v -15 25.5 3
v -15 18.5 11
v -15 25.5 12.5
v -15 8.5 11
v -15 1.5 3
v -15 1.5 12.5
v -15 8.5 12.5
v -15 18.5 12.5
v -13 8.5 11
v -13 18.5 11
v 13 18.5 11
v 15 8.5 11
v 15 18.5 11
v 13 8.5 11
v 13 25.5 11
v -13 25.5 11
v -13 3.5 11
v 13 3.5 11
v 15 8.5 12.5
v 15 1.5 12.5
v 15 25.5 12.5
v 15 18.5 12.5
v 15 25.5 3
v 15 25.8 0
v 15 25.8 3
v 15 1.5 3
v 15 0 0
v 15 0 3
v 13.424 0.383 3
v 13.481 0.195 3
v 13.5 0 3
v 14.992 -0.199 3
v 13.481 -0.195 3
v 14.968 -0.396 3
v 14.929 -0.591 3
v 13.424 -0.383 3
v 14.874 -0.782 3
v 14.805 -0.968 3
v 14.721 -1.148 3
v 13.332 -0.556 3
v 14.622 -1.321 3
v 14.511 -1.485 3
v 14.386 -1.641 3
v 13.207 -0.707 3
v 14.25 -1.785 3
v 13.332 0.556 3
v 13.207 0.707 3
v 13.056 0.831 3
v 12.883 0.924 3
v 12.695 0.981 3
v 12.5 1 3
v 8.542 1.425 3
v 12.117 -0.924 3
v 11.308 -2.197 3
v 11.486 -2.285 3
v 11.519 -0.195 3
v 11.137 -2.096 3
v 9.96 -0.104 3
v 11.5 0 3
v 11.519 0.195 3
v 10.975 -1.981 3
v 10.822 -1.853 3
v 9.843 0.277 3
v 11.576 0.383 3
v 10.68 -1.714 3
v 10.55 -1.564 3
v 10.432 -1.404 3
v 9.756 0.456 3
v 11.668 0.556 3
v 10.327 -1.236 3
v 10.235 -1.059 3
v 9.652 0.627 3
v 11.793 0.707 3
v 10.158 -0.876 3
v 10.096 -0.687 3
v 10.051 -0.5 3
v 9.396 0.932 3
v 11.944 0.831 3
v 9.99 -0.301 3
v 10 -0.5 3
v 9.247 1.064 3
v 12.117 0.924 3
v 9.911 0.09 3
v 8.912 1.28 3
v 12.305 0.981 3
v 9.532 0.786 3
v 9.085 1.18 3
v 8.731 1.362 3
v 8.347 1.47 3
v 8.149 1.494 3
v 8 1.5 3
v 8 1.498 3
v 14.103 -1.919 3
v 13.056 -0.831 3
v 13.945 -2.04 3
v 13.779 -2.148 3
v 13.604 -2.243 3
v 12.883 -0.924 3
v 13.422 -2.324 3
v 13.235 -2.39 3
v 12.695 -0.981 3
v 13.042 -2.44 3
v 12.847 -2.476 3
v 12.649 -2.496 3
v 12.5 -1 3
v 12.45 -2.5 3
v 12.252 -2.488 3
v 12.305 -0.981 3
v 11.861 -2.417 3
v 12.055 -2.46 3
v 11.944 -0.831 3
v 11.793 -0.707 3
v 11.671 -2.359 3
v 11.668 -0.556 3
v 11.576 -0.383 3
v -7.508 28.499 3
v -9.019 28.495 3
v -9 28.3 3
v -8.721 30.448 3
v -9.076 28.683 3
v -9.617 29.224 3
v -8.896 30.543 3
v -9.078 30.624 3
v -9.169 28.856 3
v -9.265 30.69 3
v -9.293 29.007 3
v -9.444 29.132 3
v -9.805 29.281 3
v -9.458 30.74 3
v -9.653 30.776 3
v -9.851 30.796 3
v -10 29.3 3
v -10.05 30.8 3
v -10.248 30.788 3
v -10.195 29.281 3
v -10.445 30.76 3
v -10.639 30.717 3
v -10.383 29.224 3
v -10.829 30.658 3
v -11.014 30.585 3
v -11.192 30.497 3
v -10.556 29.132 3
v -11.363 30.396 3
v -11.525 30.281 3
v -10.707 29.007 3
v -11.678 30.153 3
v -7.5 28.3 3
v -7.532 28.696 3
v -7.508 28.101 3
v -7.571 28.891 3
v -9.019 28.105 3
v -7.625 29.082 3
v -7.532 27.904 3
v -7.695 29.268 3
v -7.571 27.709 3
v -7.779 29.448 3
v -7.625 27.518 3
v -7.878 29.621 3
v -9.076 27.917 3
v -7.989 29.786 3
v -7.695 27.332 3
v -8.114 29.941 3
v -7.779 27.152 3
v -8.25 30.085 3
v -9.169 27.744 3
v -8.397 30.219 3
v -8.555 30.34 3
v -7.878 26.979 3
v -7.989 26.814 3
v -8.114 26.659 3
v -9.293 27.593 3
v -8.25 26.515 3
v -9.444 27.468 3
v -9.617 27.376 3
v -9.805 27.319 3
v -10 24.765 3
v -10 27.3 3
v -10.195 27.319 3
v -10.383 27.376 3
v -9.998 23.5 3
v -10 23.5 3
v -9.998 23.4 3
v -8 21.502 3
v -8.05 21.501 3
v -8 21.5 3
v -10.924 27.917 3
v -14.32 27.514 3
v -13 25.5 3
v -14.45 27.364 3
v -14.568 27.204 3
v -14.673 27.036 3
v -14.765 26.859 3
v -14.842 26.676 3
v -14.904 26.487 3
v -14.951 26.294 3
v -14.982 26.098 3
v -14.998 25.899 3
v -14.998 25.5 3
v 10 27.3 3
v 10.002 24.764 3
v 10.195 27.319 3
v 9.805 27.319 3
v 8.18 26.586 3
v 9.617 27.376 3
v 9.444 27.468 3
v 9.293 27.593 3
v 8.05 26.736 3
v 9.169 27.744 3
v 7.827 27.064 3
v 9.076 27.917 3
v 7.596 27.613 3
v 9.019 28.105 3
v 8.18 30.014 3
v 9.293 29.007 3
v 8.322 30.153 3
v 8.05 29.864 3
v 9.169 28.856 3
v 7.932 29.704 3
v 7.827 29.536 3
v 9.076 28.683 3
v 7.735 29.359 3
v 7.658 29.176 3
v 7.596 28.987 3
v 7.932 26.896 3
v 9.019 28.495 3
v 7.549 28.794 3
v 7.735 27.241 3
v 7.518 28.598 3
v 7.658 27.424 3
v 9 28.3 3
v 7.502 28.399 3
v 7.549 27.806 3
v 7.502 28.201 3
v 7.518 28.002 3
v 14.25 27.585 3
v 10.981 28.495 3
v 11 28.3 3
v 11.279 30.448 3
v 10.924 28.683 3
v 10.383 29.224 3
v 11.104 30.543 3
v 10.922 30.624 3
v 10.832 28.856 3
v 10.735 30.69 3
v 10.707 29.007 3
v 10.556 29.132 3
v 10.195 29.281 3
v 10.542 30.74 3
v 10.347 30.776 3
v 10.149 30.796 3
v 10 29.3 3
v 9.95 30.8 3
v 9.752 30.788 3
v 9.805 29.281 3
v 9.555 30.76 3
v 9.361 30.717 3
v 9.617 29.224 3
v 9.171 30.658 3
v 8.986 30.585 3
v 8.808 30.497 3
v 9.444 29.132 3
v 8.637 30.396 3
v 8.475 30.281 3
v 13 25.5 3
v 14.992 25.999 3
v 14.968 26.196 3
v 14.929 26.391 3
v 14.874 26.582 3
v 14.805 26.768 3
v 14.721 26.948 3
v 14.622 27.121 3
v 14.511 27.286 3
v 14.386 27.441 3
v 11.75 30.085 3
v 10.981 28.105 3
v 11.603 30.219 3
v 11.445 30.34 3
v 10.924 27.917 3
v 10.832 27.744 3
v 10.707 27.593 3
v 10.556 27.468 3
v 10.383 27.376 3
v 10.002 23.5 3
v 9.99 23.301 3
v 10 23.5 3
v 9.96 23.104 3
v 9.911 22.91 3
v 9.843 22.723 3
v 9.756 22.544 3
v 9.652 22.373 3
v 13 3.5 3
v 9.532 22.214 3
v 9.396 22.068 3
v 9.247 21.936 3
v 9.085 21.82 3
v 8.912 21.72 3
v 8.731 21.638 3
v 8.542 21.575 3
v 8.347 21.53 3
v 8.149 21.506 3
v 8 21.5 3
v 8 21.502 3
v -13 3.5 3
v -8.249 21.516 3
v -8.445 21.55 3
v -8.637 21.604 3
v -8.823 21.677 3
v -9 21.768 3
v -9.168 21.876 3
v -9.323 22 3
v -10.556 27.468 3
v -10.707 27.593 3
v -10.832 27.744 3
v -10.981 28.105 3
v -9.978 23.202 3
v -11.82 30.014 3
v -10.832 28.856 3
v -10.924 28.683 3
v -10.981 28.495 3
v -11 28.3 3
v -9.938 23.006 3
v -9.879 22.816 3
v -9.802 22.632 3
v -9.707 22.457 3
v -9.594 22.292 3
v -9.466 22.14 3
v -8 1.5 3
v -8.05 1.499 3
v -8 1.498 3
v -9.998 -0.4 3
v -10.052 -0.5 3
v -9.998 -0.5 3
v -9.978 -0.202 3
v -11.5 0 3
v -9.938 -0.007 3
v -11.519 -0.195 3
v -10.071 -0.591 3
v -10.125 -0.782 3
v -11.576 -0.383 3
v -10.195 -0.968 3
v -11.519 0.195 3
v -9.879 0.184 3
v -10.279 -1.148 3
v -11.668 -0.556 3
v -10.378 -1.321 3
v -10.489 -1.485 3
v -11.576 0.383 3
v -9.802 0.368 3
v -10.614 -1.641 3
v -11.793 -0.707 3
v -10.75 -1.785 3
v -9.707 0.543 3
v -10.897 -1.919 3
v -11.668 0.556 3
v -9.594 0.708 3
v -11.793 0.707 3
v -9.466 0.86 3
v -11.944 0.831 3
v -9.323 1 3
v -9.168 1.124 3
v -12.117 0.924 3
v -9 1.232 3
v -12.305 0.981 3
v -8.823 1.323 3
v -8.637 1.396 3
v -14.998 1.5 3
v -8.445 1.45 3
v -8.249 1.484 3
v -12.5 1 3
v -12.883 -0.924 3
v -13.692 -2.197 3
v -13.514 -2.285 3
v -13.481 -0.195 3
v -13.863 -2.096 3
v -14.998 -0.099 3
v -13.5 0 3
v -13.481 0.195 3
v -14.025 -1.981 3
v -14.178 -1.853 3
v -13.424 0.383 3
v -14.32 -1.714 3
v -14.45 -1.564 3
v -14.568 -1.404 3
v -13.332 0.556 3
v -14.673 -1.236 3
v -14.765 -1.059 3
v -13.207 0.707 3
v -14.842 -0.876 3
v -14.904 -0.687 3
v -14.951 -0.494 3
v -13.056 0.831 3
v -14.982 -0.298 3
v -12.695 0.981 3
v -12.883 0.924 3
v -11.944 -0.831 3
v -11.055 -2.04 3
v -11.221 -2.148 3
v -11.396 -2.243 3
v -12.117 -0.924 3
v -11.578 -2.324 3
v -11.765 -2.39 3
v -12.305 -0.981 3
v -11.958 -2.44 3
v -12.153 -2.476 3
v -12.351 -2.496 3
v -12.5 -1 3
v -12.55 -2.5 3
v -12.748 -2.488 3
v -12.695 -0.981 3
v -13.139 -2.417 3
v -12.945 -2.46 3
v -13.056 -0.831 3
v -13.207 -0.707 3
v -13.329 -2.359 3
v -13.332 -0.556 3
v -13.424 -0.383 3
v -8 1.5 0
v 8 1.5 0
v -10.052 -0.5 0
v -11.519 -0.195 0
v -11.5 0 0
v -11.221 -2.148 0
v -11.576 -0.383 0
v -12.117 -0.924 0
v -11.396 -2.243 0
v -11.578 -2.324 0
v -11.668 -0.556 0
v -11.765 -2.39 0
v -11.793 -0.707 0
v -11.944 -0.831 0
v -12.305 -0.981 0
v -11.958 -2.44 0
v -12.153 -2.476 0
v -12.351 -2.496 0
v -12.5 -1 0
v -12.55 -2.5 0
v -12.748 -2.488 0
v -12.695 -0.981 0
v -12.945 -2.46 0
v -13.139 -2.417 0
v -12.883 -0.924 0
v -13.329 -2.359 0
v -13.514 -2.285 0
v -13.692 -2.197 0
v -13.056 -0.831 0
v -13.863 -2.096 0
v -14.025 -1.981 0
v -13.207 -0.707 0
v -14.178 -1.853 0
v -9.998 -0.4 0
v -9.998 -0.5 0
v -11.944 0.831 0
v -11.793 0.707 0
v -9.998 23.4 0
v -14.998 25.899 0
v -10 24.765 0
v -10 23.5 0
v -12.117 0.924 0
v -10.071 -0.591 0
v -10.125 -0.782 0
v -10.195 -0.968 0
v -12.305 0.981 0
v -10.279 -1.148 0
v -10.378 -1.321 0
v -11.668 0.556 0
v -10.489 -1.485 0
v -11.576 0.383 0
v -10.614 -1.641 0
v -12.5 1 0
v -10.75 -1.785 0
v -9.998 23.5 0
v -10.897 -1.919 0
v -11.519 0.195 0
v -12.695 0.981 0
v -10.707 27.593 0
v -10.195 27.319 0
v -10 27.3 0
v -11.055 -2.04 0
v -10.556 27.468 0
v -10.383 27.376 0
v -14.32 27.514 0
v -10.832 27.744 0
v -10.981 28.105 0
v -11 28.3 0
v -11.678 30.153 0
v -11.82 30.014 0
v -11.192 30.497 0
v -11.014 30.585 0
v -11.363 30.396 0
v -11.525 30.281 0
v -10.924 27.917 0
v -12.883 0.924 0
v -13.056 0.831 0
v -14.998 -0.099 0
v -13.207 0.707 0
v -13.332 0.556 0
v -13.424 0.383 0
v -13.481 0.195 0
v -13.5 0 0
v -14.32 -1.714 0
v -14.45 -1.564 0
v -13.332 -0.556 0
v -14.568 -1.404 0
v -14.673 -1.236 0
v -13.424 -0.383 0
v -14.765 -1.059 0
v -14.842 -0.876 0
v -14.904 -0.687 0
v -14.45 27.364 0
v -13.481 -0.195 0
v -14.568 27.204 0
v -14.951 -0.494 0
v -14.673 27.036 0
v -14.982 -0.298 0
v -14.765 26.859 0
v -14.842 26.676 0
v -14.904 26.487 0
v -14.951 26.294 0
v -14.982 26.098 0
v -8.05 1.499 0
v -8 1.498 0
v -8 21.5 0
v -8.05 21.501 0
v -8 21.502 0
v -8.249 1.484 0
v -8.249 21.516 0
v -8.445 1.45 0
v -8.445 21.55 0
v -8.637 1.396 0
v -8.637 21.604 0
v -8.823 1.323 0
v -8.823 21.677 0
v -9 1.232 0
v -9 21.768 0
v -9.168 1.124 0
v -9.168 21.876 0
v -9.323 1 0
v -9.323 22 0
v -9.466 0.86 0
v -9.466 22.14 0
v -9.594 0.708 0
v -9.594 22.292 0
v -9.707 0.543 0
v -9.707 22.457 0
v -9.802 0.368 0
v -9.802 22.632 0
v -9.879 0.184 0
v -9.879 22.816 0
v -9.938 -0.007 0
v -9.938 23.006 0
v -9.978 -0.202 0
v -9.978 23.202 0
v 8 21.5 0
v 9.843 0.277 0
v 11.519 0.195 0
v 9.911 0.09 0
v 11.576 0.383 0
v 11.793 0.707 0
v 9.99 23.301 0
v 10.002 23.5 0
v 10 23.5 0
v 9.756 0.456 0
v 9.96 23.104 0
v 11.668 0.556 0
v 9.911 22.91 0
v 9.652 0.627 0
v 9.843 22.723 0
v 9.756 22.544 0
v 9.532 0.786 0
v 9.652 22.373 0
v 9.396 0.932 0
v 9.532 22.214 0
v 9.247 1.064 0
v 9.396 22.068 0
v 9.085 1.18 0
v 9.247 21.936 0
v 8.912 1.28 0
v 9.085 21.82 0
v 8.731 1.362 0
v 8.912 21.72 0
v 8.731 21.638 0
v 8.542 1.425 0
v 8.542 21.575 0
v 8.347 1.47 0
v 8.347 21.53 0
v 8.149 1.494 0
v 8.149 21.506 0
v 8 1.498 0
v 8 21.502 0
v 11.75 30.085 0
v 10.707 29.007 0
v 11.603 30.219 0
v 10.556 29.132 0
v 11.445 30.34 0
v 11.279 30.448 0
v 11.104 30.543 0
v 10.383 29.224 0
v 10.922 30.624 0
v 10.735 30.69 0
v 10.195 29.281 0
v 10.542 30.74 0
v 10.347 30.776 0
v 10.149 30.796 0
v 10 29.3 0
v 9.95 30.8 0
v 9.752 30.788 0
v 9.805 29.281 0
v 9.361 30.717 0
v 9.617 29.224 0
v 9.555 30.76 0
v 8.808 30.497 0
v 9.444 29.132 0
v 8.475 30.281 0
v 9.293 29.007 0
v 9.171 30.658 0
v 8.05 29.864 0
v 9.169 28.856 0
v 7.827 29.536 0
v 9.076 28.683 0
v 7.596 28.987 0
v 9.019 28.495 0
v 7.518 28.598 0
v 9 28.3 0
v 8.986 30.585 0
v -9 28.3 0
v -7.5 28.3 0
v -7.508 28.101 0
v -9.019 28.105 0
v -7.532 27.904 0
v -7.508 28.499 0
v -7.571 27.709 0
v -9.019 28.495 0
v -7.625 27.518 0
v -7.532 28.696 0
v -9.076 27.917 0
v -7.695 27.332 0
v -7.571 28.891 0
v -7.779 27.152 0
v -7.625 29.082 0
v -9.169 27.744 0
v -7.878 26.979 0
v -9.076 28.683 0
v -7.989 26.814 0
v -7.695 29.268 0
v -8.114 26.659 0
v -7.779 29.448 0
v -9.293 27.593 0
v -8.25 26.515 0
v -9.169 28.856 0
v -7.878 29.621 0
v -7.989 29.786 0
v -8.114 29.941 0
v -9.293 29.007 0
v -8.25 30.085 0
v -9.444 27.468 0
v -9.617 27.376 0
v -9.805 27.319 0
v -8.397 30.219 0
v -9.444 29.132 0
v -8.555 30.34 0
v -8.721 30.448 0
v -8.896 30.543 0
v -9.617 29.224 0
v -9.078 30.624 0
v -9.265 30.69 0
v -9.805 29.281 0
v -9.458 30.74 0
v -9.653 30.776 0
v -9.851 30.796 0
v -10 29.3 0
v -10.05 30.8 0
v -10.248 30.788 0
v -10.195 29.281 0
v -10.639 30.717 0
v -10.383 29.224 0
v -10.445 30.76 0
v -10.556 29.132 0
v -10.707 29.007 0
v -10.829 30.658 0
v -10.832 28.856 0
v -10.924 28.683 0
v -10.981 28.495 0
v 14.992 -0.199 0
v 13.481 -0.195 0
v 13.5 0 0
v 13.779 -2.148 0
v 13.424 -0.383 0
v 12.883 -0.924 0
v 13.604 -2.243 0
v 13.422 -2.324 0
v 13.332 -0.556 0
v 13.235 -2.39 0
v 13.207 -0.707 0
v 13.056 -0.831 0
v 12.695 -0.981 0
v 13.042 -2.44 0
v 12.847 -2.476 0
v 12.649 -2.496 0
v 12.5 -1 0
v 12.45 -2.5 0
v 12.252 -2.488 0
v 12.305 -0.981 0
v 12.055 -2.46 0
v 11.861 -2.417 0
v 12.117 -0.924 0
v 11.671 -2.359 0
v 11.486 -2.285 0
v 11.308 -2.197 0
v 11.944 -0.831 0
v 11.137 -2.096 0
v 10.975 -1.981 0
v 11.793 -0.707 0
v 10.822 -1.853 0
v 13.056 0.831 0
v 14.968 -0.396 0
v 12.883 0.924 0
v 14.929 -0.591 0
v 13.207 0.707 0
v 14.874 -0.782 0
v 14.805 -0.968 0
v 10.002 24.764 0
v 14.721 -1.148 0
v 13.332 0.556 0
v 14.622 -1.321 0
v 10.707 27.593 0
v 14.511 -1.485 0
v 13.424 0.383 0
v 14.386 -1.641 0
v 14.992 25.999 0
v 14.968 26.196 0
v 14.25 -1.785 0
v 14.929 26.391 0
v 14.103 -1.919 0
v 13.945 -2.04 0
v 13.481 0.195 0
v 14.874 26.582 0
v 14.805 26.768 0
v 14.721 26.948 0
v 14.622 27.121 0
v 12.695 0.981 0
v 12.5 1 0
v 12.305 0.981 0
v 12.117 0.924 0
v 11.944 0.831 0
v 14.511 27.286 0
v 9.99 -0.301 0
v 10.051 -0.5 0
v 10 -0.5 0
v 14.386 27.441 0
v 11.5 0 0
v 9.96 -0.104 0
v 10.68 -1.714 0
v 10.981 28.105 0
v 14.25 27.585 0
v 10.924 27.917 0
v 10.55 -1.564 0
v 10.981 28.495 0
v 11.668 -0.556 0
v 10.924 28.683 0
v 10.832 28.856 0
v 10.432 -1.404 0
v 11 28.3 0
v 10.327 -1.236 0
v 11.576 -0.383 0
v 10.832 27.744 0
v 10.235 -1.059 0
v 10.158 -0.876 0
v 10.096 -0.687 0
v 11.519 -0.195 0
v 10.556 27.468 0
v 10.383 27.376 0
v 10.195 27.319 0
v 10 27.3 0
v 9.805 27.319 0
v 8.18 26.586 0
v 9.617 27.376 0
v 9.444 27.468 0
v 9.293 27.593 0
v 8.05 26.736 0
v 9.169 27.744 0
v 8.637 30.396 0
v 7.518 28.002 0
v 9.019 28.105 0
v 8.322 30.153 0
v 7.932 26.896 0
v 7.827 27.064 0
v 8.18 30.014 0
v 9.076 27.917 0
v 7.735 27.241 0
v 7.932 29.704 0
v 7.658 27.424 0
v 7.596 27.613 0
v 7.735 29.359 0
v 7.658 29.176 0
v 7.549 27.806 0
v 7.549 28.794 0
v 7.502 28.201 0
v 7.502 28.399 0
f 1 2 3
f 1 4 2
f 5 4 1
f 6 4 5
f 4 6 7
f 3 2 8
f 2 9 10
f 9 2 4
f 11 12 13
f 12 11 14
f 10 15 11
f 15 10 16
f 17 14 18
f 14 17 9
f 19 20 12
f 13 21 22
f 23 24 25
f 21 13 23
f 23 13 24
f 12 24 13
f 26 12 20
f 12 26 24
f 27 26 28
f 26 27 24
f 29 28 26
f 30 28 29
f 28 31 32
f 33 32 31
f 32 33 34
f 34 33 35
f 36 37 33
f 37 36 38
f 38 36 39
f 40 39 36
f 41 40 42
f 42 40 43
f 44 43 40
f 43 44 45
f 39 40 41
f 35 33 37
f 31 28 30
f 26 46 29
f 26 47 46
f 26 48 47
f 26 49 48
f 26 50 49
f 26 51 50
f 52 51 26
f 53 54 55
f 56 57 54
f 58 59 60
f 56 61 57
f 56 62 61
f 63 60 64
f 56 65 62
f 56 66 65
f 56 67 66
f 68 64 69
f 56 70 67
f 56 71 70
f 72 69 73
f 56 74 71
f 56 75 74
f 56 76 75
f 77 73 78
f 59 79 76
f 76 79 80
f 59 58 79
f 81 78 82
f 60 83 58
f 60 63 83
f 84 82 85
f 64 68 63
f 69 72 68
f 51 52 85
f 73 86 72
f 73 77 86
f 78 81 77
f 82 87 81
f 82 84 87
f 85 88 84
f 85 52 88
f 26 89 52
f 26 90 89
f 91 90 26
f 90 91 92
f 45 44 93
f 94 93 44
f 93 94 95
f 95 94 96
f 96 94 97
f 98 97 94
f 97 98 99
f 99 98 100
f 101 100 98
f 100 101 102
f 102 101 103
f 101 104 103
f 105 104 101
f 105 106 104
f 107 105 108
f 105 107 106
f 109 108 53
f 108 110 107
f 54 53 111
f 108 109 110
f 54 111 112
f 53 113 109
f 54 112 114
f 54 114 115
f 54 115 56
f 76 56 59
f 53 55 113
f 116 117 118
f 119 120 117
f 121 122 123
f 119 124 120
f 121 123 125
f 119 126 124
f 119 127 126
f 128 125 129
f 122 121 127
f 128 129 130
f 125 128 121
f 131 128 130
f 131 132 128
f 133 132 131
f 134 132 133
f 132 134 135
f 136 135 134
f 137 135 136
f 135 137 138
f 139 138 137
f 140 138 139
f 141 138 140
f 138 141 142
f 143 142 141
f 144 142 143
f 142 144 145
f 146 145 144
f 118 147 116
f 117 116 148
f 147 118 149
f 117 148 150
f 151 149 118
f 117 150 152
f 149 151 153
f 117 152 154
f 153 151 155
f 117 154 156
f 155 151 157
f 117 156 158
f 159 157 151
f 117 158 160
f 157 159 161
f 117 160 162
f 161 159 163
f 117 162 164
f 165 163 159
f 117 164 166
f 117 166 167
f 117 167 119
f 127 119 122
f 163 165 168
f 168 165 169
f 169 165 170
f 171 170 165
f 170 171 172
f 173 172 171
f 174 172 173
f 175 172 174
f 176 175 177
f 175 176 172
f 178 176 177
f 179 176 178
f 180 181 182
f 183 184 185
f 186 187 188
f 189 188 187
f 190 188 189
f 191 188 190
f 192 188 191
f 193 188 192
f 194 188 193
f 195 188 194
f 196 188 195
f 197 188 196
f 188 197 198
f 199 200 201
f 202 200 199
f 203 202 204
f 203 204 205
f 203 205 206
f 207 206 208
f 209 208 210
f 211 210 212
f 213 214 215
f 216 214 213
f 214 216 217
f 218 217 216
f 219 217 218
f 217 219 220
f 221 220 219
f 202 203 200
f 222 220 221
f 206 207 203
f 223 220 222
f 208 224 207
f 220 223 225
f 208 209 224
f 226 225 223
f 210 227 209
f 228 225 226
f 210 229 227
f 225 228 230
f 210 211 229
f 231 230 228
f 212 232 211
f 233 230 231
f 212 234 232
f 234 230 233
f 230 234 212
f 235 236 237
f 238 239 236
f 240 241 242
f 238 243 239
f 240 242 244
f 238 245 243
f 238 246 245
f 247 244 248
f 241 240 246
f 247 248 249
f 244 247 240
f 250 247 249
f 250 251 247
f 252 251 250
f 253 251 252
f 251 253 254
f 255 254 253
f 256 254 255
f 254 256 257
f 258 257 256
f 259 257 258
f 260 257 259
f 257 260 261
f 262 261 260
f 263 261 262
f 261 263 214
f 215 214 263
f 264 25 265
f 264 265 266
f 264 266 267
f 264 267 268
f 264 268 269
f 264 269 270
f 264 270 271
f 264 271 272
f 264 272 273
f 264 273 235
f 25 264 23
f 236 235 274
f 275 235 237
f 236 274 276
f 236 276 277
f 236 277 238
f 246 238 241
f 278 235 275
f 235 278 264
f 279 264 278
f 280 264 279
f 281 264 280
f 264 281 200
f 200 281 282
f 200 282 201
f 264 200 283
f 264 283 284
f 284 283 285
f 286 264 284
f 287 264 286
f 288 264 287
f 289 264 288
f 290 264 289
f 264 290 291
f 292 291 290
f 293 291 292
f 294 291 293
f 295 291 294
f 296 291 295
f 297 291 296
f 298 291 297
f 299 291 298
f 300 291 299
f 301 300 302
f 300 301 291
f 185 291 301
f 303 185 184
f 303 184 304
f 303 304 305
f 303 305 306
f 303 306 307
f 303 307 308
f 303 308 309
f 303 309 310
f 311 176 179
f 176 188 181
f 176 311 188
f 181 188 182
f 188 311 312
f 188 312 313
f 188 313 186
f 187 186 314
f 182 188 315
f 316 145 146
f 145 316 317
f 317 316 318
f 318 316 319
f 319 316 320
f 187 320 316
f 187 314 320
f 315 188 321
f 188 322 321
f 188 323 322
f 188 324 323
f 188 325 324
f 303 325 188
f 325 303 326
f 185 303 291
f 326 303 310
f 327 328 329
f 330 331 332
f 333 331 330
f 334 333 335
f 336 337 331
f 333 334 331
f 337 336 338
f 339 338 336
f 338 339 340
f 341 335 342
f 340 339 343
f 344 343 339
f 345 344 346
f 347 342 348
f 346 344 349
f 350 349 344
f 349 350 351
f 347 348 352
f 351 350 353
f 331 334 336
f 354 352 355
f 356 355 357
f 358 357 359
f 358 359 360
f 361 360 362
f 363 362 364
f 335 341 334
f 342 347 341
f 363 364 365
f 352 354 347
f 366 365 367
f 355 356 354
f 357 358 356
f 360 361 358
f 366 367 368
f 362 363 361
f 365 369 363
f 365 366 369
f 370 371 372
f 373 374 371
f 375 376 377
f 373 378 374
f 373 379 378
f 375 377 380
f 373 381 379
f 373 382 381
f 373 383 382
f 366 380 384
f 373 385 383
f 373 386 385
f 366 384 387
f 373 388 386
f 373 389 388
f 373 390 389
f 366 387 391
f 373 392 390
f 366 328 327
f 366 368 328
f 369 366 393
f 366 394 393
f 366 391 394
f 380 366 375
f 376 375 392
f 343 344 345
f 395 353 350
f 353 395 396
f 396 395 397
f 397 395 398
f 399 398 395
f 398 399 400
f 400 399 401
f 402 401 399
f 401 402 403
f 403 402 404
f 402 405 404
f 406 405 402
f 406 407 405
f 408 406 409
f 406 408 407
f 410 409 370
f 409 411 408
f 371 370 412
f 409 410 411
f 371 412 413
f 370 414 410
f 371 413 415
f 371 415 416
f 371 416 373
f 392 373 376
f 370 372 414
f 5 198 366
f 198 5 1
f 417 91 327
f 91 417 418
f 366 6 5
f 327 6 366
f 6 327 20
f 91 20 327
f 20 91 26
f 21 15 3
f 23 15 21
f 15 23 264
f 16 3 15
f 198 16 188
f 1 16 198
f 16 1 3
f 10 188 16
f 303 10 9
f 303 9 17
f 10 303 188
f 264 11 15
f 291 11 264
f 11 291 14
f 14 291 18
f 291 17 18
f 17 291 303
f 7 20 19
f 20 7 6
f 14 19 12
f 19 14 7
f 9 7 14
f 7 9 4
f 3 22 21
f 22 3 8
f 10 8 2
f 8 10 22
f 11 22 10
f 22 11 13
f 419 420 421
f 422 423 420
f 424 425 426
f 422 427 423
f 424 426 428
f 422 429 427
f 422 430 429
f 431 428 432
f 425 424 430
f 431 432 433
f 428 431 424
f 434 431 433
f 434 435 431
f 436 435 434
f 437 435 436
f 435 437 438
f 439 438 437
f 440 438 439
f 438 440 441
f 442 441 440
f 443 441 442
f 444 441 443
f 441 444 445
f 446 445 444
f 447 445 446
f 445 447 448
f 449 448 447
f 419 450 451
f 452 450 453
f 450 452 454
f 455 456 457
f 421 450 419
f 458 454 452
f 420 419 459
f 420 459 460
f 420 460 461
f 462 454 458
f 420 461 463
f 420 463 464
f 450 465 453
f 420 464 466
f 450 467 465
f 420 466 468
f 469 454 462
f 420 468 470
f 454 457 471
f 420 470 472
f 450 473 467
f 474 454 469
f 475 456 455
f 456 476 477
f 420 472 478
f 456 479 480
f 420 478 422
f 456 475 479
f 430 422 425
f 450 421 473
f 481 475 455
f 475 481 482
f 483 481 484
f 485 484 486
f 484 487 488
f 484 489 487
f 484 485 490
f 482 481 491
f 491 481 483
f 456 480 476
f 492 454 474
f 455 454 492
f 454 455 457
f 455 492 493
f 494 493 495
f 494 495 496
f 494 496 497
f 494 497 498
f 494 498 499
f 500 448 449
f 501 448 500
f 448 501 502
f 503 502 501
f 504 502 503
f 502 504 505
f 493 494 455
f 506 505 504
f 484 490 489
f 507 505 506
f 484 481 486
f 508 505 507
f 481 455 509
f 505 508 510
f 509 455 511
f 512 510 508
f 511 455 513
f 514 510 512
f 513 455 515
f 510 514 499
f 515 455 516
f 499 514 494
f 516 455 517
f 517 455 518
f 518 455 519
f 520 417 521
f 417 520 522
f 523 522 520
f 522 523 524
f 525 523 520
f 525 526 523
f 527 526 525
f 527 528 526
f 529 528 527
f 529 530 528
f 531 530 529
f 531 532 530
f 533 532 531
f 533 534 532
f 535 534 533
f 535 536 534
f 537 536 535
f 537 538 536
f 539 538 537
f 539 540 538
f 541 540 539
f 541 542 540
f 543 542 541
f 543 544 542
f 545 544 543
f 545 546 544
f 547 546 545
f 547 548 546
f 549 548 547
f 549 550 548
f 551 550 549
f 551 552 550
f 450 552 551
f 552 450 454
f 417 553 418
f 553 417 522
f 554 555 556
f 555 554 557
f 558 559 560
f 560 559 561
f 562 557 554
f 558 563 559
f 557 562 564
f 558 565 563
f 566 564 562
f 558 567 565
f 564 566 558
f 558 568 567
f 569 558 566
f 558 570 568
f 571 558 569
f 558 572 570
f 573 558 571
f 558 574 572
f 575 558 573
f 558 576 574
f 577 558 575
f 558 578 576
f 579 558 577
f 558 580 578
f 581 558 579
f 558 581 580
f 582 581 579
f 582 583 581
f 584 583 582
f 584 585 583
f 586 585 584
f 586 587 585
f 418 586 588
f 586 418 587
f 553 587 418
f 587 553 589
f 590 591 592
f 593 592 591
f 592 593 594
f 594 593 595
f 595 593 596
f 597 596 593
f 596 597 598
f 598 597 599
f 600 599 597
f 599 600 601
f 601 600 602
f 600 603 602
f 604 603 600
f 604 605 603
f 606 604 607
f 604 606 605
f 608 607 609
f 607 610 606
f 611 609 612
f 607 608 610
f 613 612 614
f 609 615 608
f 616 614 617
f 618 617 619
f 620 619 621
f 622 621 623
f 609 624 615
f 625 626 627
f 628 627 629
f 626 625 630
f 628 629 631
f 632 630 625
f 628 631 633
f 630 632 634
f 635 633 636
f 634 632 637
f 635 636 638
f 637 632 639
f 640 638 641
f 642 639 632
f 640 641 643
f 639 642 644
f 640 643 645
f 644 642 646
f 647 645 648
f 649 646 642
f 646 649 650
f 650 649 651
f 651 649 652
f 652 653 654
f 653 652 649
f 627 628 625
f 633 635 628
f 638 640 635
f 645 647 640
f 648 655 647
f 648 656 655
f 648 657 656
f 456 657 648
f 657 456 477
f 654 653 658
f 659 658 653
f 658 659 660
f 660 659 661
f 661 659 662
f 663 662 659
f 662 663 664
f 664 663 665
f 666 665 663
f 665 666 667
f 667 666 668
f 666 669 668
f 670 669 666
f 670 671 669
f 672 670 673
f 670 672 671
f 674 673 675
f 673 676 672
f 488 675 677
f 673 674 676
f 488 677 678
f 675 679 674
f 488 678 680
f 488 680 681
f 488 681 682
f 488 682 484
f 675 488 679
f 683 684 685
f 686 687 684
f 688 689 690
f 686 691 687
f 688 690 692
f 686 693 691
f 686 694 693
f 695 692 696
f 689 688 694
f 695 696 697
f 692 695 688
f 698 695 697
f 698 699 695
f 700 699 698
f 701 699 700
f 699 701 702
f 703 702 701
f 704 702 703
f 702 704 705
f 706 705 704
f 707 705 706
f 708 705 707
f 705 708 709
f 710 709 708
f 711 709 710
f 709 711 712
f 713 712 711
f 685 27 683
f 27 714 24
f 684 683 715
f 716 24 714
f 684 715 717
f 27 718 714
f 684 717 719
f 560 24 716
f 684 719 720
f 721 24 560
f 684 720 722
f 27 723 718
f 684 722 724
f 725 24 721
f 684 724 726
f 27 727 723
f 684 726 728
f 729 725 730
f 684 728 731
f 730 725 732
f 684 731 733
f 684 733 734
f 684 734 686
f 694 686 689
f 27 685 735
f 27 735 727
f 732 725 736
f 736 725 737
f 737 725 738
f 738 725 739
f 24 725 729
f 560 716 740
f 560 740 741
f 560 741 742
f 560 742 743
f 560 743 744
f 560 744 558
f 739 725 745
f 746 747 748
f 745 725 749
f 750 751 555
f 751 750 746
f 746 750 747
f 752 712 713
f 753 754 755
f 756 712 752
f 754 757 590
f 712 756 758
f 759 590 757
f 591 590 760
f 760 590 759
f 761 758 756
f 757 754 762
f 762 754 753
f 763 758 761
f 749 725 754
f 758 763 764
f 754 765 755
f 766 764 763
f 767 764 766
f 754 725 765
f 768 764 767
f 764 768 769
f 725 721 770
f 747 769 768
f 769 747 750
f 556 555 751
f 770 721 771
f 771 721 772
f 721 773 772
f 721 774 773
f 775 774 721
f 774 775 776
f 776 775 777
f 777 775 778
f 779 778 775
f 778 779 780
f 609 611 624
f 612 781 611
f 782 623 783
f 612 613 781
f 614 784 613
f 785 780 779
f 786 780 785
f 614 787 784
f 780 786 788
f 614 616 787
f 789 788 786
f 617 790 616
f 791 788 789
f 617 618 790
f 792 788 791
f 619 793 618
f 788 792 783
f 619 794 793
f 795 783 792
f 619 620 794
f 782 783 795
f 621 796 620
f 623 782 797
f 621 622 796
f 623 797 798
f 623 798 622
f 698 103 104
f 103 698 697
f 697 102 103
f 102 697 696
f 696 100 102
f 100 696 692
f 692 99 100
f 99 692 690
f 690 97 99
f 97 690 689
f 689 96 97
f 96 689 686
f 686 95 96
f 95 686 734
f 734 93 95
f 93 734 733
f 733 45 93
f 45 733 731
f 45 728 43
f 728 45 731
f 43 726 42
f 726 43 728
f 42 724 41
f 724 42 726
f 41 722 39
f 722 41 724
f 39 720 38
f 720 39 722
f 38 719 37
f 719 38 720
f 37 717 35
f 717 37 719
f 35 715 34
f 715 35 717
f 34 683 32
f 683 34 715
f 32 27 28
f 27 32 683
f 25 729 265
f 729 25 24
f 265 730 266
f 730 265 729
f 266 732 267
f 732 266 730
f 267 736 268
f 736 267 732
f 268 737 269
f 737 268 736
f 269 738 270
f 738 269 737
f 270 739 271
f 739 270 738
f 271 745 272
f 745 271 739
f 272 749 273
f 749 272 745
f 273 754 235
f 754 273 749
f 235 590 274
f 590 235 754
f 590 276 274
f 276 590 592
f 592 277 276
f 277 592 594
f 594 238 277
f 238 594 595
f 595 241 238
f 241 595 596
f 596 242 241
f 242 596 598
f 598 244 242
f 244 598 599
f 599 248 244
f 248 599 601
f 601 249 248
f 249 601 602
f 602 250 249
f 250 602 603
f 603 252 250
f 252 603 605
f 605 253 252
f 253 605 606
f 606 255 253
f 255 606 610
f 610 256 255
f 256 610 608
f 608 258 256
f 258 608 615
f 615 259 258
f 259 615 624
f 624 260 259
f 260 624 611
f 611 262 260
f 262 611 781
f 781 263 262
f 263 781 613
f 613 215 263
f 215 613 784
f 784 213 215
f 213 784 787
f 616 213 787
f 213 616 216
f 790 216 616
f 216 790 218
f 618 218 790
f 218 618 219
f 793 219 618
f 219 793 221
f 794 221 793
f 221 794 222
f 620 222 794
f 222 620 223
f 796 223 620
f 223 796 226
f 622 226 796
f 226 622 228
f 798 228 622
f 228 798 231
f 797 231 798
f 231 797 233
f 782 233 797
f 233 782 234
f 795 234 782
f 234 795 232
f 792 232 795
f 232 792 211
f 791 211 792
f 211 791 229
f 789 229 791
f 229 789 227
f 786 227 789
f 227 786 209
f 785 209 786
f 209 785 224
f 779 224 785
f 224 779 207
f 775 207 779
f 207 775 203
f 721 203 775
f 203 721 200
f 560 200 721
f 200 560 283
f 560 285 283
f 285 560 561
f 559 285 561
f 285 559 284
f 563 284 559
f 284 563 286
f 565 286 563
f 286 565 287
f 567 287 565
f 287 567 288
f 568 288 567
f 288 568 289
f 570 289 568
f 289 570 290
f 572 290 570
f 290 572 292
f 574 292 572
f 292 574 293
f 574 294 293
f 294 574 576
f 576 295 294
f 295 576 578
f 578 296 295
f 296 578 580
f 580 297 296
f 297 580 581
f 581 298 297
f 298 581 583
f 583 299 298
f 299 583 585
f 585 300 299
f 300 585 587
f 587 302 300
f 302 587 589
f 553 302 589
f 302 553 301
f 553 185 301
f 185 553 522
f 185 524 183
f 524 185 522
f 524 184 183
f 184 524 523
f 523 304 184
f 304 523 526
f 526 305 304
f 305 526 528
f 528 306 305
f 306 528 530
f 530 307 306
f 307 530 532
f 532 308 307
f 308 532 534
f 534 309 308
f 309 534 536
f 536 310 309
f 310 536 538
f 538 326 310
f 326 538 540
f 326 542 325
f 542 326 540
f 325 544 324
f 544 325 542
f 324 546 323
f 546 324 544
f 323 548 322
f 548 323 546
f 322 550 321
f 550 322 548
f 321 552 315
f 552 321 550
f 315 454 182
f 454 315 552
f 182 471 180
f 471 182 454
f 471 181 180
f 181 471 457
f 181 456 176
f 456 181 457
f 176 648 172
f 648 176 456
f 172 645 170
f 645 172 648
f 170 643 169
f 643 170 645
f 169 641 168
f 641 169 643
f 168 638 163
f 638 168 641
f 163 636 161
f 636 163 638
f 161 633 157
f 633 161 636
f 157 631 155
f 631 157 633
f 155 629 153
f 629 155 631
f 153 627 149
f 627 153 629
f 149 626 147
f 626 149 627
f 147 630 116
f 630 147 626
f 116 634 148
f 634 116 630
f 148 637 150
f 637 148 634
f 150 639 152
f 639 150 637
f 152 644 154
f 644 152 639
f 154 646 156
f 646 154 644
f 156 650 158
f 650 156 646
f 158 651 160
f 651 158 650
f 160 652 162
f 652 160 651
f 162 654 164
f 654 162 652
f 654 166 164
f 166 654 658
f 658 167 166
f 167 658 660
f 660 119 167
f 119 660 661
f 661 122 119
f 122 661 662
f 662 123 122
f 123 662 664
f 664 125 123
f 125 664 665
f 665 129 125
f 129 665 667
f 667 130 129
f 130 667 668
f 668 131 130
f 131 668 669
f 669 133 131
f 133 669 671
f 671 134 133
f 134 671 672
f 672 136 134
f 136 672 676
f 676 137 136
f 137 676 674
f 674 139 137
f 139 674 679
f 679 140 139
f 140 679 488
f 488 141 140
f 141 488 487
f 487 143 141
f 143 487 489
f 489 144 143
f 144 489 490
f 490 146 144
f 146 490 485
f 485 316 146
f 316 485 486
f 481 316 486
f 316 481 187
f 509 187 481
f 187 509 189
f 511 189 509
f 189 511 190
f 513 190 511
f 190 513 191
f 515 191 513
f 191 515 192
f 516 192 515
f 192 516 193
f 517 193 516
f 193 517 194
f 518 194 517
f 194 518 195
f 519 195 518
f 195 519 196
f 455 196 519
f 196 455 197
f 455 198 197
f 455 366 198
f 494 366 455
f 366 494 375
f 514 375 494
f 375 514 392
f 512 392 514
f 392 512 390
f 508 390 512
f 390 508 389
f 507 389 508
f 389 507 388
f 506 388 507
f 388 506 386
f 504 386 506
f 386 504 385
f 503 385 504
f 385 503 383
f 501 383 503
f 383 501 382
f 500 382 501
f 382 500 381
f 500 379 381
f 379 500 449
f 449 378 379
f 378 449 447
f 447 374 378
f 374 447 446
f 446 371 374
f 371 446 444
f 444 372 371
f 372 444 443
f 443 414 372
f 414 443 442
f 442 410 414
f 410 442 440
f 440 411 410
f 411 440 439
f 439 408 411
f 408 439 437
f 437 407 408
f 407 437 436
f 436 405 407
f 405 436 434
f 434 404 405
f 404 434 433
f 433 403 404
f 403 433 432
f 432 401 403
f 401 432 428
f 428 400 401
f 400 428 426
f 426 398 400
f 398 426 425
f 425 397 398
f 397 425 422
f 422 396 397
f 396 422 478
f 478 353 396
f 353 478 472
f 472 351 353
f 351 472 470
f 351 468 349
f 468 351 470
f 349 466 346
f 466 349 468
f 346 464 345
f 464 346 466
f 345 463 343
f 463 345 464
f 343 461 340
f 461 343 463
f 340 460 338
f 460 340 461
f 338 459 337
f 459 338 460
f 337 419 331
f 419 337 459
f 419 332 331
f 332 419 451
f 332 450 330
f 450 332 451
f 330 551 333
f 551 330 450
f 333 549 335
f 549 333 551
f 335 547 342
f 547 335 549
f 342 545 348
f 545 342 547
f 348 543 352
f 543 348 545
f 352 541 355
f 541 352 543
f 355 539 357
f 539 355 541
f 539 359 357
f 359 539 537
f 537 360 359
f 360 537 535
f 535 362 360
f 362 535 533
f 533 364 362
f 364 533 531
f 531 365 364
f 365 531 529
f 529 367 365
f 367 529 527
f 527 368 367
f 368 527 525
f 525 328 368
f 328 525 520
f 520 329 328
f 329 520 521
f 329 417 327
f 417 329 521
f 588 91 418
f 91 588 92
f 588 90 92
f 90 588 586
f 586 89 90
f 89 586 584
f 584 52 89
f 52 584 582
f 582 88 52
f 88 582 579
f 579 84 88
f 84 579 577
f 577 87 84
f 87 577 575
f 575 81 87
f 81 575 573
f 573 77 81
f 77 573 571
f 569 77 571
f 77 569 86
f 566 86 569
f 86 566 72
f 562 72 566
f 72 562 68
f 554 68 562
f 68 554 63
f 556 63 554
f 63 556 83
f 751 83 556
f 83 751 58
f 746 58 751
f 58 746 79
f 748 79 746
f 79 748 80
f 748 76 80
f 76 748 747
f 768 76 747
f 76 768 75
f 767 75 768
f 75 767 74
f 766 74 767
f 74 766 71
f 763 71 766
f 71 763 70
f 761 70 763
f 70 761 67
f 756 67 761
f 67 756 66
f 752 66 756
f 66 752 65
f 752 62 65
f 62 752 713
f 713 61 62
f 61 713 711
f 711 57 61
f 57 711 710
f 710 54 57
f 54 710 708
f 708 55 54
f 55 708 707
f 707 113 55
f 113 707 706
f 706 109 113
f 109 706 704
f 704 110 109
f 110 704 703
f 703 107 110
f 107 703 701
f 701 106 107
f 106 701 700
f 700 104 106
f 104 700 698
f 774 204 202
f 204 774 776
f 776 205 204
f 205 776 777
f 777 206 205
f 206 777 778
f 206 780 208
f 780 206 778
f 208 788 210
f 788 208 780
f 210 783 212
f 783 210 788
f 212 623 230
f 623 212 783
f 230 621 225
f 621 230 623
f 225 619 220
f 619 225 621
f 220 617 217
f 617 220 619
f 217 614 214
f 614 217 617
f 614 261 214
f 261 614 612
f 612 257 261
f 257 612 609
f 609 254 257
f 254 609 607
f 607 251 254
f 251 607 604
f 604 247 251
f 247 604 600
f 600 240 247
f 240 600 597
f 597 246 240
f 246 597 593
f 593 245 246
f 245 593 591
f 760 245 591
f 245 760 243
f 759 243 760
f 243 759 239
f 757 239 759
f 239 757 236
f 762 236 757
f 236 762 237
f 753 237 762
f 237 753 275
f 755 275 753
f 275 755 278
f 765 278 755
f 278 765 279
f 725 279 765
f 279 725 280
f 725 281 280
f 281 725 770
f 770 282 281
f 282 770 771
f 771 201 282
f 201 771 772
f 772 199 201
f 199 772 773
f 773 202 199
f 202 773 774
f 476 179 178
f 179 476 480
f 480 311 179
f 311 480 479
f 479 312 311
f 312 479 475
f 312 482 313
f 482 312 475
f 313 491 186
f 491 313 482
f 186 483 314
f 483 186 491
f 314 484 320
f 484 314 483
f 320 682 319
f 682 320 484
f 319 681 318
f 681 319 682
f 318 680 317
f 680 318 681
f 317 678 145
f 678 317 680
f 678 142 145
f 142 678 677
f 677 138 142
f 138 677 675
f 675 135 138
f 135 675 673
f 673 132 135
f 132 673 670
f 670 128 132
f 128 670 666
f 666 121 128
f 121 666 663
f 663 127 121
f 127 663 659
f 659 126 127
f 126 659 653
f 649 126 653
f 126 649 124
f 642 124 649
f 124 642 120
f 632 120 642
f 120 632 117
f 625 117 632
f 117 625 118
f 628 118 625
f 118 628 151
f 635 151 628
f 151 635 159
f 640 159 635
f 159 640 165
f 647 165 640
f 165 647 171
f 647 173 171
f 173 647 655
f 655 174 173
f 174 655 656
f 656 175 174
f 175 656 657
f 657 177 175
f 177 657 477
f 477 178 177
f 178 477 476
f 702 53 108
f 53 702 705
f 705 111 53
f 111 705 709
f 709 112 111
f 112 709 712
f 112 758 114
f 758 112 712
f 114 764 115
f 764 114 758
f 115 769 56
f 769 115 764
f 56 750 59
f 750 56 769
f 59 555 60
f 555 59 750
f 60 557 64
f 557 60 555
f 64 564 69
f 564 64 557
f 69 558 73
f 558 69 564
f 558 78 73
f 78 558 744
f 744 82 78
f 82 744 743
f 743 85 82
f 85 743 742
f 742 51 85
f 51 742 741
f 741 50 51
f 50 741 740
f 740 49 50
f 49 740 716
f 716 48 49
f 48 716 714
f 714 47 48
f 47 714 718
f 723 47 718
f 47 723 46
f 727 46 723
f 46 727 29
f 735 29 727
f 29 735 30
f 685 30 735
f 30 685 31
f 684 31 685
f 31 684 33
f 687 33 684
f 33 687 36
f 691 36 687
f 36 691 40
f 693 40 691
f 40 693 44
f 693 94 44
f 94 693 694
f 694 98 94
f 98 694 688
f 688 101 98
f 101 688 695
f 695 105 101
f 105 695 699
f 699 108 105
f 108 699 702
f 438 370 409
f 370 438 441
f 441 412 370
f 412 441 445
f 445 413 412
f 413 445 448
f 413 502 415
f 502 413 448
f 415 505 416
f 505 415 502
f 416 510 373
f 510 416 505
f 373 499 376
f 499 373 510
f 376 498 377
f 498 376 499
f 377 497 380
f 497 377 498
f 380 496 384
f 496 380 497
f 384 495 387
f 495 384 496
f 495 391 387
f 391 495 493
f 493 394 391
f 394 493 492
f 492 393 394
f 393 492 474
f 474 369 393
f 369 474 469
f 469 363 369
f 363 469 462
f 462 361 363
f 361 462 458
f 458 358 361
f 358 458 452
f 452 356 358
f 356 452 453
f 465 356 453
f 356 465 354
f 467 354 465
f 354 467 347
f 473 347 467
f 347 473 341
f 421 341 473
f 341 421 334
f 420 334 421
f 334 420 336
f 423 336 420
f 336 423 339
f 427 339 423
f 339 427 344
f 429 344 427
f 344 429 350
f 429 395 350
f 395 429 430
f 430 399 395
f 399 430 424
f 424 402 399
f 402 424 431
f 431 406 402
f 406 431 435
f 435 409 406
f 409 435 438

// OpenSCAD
$fs = $preview ? 0.5 : 0.2;
$fa = $preview ? 10 : 2;

// base plate
h0 = 3;
w0 = 5;
d1 = 25;
d2 = 20;
l0 = 28.3;
s12 = (d1 - d2) / 2;
dh = 2;

br = 2; // bevel radius (on inner corners)

// support bar
gl = 20;
gs = 1.5;

// GPS mount
gmw = 26;
gmh = 8;
gml = 22; // real lenght = 25

bw = 2; // side border width

gcl = 5; // top cover length
gcw = 1.5; // top plate width

eps = 0.5;

translate([-gmw / 2 - bw, gs, h0]) {
    difference() {
        cube([gmw + 2 * bw, gml + bw, gmh]);        
        translate([bw, bw, -eps]) cube([gmw, gml + eps, gmh + 2 * eps]);
    }
    translate([0, 0, gmh])
        cube([gmw + 2 * bw, gcl + bw, gcw]);
    translate([0, gml - gcl, gmh])
        cube([gmw + 2 * bw, gcl + bw, gcw]);
}


linear_extrude(h0) {
    difference() {
        union() {
            hull() {
                translate([d1 / 2, 0]) circle(d = w0);
                translate([d2 / 2 + s12, l0 - s12]) circle(d = w0);
            }
            hull() {
                translate([d2 / 2 + s12, l0 - s12]) circle(d = w0);
                translate([d2 / 2, l0]) circle(d = w0);
            }

            hull() {
                translate([-d1 / 2, 0]) circle(d = w0);
                translate([-d2 / 2 - s12, l0 - s12]) circle(d = w0);
            }
            hull() {
                translate([-d2 / 2 - s12, l0 - s12]) circle(d = w0);
                translate([-d2 / 2, l0]) circle(d = w0);
            }
            translate([-d1 / 2, gs])
                square([d1, gl]);
            translate([-d1 / 2 + w0 / 2, gs - br])
                difference() {
                    translate([-eps, 0]) square([br + eps, br + eps]);
                    translate([br, 0]) circle(r = br);
                }
            translate([d1 / 2 - w0 / 2 - br, gs - br])
                difference() {
                    translate([0, 0]) square([br + eps, br + eps]);
                    circle(r = br);
                }
            translate([-d1 / 2 + w0 / 2, gs + gl])
                difference() {
                    translate([-eps, -eps]) square([br + eps, br + eps]);
                    translate([br, br]) circle(r = br);
                }
            translate([d1 / 2 - w0 / 2 - br, gs + gl])
                difference() {
                    translate([0, -eps]) square([br + eps, br + eps]);
                    translate([0, br]) circle(r = br);
                }
        }
        translate([d1 / 2, 0]) circle(d = dh);
        translate([d2 / 2, l0]) circle(d = dh);
        translate([-d1 / 2, 0]) circle(d = dh);
        translate([-d2 / 2, l0]) circle(d = dh);
    }
} 
